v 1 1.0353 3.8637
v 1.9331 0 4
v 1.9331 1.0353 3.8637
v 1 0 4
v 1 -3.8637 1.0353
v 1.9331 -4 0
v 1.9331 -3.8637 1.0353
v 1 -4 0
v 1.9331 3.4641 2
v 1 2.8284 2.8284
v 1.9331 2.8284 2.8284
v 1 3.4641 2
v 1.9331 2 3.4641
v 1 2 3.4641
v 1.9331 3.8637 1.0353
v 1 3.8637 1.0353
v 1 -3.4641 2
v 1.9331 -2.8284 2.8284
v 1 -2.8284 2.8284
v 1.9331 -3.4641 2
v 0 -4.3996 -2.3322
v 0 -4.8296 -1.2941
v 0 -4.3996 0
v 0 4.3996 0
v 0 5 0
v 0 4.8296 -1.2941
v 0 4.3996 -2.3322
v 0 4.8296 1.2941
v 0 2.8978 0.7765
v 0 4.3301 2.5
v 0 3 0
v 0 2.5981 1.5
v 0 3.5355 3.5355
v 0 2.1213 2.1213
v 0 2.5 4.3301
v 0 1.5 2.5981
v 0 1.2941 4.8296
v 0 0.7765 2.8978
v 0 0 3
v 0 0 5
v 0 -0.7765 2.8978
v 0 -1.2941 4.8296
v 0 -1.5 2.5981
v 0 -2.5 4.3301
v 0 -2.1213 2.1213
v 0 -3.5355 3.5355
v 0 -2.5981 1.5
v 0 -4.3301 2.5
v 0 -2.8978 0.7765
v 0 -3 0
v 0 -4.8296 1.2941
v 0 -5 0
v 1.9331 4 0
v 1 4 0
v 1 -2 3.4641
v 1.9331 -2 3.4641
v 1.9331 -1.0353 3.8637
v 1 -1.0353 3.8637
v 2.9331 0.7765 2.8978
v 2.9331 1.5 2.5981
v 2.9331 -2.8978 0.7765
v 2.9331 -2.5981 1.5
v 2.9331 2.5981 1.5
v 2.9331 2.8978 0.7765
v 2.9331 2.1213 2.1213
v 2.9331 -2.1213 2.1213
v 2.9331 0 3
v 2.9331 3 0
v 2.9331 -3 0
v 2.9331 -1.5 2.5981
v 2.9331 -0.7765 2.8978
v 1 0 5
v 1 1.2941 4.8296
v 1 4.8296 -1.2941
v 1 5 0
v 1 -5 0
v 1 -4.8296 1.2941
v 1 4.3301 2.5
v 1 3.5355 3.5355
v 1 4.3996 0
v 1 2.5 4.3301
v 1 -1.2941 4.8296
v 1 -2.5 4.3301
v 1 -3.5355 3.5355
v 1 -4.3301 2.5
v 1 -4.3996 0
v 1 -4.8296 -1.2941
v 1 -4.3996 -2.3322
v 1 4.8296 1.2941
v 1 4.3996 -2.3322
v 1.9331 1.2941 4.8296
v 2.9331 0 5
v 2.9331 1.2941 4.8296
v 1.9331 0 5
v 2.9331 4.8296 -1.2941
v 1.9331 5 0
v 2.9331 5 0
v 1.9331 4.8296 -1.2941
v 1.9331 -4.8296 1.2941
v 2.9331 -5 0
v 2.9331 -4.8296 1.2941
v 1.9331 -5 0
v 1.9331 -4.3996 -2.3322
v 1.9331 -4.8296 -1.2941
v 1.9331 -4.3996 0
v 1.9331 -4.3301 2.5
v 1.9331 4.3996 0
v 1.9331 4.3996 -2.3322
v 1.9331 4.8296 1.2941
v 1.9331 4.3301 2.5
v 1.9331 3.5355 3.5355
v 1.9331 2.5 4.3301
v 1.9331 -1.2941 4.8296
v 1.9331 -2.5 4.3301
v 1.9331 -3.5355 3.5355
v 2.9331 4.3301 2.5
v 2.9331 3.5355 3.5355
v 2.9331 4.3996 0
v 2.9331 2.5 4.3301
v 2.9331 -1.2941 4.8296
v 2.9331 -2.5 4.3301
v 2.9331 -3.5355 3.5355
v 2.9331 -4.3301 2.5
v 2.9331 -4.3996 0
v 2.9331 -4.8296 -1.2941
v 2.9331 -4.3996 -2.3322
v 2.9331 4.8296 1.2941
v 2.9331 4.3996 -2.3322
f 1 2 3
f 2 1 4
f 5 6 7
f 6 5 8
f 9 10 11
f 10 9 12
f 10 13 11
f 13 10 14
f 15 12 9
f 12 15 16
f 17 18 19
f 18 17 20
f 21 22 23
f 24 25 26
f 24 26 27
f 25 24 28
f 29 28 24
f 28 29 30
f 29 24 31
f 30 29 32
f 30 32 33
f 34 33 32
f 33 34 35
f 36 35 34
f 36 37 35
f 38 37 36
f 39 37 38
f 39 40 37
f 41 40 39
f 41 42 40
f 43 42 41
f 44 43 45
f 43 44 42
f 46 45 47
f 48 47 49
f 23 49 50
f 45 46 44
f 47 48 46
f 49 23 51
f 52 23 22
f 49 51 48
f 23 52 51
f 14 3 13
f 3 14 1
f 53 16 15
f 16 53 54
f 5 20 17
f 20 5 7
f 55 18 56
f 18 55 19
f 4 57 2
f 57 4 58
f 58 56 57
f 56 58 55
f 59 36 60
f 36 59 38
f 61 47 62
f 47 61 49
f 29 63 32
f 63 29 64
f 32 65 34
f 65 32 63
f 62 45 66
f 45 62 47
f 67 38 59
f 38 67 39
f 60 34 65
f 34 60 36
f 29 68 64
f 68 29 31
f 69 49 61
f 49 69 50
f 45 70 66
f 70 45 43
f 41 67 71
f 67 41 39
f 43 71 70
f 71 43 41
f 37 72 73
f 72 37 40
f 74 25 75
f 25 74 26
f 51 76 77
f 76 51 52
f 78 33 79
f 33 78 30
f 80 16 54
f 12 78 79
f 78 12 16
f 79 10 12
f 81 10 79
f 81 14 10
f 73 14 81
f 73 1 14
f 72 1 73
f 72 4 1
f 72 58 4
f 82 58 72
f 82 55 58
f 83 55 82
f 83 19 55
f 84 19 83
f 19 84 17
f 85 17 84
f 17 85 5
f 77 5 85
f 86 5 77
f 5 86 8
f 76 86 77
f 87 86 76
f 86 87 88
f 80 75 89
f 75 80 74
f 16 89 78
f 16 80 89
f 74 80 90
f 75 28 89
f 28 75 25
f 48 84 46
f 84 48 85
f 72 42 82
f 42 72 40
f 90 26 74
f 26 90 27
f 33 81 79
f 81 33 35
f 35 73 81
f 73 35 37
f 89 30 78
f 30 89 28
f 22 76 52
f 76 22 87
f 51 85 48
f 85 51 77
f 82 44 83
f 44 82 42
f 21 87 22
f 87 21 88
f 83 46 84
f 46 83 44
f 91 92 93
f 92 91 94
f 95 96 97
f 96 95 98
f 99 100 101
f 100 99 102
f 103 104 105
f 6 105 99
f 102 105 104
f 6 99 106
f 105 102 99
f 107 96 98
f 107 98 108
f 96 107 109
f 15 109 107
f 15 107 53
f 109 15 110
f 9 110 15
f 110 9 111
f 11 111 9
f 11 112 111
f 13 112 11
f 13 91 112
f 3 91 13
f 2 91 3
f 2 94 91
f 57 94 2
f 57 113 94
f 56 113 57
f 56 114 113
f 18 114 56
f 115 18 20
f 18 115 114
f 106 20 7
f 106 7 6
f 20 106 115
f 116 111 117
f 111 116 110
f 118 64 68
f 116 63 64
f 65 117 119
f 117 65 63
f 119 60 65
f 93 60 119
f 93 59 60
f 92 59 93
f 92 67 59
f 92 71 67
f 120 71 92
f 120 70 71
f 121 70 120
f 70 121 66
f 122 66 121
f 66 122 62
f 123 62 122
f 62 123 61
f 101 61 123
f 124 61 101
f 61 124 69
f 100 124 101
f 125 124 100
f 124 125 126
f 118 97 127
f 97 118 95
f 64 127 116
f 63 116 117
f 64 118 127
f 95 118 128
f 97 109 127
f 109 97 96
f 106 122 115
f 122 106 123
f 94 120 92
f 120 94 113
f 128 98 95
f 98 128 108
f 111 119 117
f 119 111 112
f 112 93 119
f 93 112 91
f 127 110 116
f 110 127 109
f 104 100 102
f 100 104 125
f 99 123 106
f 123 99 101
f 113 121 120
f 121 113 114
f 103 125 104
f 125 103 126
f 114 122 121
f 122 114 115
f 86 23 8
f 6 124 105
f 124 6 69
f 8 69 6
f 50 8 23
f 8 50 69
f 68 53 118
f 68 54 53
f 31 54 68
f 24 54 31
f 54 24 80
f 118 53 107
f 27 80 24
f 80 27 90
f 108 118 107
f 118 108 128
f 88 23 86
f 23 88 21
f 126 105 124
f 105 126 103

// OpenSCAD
// file: ../build_environments.scad
// build_environments.scad: modules to build level sections
//

module pool(diameter=10.0, wall_height=2.0, step_width=3.0, connections=[])
{
    difference() {
        union() {
        difference() {
            cylinder(h=0.5,r1=diameter+step_width,r2=diameter+step_width,$fn=48);
            translate([0,0,-0.1])
                cylinder(h=0.7,r1=diameter,r2=diameter,$fn=48);
        }
        difference() {
            cylinder(h=wall_height,r1=diameter+step_width+1.0,r2=diameter+step_width+1.0,$fn=48);
            translate([0,0,-0.1])
                cylinder(h=wall_height+0.2,r1=diameter+step_width,r2=diameter+step_width,$fn=48);
        }
        }
    
        for (c = connections)
        {
            rotate([0,90,0]) {
                angle = atan2(c[1],c[0]);
                rotate([-angle,0,0]) {
                    cylinder(h=diameter+5.0,r1=c[2],r2=c[2],$fn=48);
                }
            }
        }
    }
}

module straight(length=10.0, width=2.0, dy1=0.0, dy2=0.0, dz=0.0)
{
    dims = [0, 0, 0, 0, 0, (dz/length)];
    matrix = [
        [ 1, dims[0], dims[1], 0 ],
        [ dims[2], 1, dims[4], 0 ],
        [ dims[5], dims[3], 1, 0 ],
        [ 0, 0, 0, 1 ]
    ];
    multmatrix(matrix)
    difference() {
        translate([dy1,0,0])
        union() {
            rotate([0,90,0]) {
                difference() {
                    cylinder(h=(length-dy1-dy2),r1=width+1.0,r2=width+1.0,$fn=24);
                    translate([0,0,-0.1])
                        cylinder(h=(length-dy1-dy2+0.2),r1=width,r2=width,$fn=24);
                }
                difference() {
                    cylinder(h=1.0,r1=width+2.0,r2=width+2.0,$fn=24);
                    translate([0,0,-0.1])
                        cylinder(h=1.2,r1=width,r2=width,$fn=24);
                }
                translate([0,0,(length-dy1-dy2)-1.0]) {
                    difference() {
                        cylinder(h=1.0,r1=width+2.0,r2=width+2.0,$fn=24);
                        translate([0,0,-0.1])
                            cylinder(h=1.2,r1=width,r2=width,$fn=24);
                    }
                }
            }
        }
        translate([0,0,-(2*width+4.0)/2])
            cube([3*length,3*length,2*width+4.0],center=true);
    }
}

module curve(p0=[0,0], center=[0,0], dir=1, angle=0.0, width=2.0)
{
    radius = sqrt((p0[0]-center[0])*(p0[0]-center[0]) + (p0[1]-center[1])*(p0[1]-center[1]));
    if (dir == 0) {
        difference() {
            rotate([0,0,-90])
            difference() {
                rotate_extrude(angle = angle, convexity = 10, $fn=32)
                    translate([radius, 0, 0])
                        circle(r = width+1.0,$fn=24);
                rotate([0,0,-1.0])
                    rotate_extrude(angle = angle+2.0, convexity = 10, $fn=32)
                        translate([radius, 0, 0])
                            circle(r = width,$fn=24);
            }
            translate([0,0,-(2*width+4.0)/2])
                cube([5*radius,5*radius,2*width+4.0],center=true);
        }
    }
    else {
        difference() {
            rotate([0,0,90])
            difference() {
                rotate_extrude(angle = -angle, convexity = 10, $fn=32)
                    translate([radius, 0, 0])
                        circle(r = width+1.0,$fn=24);
                rotate([0,0,1.0])
                    rotate_extrude(angle = -angle-2.0, convexity = 10, $fn=32)
                        translate([radius, 0, 0])
                            circle(r = width,$fn=24);
            }
            translate([0,0,-(2*width+4.0)/2])
                cube([5*radius,5*radius,2*width+4.0],center=true);
        }
    }

}

// test pool
//pool(diameter=12.0000, wall_height=3.0000, step_width=3.0000, connections=[[0.0000,-26.0000,2.0000], [23.6074,0.0000,2.0000]]);

// test straight, slope
//straight(length=26.0000, width=2.0000, dy1=11.8322, dy2=6.7082, dz=0.0000);
//straight(length=29.1549, width=12.0000, dy1=0.0000, dy2=0.0000, dz=-15.0000);

// test curve
//curve(p0=[23.6074, 0.0000], center=[23.6074, 5.0000], dir=0, angle=60.1011, width=2.0000);
//curve(p0=[33.6426, 12.4219], center=[37.9771, 9.9295], dir=1, angle=120.4627, width=2.0000);
// main file
use <../build_environments.scad>;
straight(length=2.9331, width=3.0000, dy1=0.0000, dy2=0.0000, dz=0.0000);
